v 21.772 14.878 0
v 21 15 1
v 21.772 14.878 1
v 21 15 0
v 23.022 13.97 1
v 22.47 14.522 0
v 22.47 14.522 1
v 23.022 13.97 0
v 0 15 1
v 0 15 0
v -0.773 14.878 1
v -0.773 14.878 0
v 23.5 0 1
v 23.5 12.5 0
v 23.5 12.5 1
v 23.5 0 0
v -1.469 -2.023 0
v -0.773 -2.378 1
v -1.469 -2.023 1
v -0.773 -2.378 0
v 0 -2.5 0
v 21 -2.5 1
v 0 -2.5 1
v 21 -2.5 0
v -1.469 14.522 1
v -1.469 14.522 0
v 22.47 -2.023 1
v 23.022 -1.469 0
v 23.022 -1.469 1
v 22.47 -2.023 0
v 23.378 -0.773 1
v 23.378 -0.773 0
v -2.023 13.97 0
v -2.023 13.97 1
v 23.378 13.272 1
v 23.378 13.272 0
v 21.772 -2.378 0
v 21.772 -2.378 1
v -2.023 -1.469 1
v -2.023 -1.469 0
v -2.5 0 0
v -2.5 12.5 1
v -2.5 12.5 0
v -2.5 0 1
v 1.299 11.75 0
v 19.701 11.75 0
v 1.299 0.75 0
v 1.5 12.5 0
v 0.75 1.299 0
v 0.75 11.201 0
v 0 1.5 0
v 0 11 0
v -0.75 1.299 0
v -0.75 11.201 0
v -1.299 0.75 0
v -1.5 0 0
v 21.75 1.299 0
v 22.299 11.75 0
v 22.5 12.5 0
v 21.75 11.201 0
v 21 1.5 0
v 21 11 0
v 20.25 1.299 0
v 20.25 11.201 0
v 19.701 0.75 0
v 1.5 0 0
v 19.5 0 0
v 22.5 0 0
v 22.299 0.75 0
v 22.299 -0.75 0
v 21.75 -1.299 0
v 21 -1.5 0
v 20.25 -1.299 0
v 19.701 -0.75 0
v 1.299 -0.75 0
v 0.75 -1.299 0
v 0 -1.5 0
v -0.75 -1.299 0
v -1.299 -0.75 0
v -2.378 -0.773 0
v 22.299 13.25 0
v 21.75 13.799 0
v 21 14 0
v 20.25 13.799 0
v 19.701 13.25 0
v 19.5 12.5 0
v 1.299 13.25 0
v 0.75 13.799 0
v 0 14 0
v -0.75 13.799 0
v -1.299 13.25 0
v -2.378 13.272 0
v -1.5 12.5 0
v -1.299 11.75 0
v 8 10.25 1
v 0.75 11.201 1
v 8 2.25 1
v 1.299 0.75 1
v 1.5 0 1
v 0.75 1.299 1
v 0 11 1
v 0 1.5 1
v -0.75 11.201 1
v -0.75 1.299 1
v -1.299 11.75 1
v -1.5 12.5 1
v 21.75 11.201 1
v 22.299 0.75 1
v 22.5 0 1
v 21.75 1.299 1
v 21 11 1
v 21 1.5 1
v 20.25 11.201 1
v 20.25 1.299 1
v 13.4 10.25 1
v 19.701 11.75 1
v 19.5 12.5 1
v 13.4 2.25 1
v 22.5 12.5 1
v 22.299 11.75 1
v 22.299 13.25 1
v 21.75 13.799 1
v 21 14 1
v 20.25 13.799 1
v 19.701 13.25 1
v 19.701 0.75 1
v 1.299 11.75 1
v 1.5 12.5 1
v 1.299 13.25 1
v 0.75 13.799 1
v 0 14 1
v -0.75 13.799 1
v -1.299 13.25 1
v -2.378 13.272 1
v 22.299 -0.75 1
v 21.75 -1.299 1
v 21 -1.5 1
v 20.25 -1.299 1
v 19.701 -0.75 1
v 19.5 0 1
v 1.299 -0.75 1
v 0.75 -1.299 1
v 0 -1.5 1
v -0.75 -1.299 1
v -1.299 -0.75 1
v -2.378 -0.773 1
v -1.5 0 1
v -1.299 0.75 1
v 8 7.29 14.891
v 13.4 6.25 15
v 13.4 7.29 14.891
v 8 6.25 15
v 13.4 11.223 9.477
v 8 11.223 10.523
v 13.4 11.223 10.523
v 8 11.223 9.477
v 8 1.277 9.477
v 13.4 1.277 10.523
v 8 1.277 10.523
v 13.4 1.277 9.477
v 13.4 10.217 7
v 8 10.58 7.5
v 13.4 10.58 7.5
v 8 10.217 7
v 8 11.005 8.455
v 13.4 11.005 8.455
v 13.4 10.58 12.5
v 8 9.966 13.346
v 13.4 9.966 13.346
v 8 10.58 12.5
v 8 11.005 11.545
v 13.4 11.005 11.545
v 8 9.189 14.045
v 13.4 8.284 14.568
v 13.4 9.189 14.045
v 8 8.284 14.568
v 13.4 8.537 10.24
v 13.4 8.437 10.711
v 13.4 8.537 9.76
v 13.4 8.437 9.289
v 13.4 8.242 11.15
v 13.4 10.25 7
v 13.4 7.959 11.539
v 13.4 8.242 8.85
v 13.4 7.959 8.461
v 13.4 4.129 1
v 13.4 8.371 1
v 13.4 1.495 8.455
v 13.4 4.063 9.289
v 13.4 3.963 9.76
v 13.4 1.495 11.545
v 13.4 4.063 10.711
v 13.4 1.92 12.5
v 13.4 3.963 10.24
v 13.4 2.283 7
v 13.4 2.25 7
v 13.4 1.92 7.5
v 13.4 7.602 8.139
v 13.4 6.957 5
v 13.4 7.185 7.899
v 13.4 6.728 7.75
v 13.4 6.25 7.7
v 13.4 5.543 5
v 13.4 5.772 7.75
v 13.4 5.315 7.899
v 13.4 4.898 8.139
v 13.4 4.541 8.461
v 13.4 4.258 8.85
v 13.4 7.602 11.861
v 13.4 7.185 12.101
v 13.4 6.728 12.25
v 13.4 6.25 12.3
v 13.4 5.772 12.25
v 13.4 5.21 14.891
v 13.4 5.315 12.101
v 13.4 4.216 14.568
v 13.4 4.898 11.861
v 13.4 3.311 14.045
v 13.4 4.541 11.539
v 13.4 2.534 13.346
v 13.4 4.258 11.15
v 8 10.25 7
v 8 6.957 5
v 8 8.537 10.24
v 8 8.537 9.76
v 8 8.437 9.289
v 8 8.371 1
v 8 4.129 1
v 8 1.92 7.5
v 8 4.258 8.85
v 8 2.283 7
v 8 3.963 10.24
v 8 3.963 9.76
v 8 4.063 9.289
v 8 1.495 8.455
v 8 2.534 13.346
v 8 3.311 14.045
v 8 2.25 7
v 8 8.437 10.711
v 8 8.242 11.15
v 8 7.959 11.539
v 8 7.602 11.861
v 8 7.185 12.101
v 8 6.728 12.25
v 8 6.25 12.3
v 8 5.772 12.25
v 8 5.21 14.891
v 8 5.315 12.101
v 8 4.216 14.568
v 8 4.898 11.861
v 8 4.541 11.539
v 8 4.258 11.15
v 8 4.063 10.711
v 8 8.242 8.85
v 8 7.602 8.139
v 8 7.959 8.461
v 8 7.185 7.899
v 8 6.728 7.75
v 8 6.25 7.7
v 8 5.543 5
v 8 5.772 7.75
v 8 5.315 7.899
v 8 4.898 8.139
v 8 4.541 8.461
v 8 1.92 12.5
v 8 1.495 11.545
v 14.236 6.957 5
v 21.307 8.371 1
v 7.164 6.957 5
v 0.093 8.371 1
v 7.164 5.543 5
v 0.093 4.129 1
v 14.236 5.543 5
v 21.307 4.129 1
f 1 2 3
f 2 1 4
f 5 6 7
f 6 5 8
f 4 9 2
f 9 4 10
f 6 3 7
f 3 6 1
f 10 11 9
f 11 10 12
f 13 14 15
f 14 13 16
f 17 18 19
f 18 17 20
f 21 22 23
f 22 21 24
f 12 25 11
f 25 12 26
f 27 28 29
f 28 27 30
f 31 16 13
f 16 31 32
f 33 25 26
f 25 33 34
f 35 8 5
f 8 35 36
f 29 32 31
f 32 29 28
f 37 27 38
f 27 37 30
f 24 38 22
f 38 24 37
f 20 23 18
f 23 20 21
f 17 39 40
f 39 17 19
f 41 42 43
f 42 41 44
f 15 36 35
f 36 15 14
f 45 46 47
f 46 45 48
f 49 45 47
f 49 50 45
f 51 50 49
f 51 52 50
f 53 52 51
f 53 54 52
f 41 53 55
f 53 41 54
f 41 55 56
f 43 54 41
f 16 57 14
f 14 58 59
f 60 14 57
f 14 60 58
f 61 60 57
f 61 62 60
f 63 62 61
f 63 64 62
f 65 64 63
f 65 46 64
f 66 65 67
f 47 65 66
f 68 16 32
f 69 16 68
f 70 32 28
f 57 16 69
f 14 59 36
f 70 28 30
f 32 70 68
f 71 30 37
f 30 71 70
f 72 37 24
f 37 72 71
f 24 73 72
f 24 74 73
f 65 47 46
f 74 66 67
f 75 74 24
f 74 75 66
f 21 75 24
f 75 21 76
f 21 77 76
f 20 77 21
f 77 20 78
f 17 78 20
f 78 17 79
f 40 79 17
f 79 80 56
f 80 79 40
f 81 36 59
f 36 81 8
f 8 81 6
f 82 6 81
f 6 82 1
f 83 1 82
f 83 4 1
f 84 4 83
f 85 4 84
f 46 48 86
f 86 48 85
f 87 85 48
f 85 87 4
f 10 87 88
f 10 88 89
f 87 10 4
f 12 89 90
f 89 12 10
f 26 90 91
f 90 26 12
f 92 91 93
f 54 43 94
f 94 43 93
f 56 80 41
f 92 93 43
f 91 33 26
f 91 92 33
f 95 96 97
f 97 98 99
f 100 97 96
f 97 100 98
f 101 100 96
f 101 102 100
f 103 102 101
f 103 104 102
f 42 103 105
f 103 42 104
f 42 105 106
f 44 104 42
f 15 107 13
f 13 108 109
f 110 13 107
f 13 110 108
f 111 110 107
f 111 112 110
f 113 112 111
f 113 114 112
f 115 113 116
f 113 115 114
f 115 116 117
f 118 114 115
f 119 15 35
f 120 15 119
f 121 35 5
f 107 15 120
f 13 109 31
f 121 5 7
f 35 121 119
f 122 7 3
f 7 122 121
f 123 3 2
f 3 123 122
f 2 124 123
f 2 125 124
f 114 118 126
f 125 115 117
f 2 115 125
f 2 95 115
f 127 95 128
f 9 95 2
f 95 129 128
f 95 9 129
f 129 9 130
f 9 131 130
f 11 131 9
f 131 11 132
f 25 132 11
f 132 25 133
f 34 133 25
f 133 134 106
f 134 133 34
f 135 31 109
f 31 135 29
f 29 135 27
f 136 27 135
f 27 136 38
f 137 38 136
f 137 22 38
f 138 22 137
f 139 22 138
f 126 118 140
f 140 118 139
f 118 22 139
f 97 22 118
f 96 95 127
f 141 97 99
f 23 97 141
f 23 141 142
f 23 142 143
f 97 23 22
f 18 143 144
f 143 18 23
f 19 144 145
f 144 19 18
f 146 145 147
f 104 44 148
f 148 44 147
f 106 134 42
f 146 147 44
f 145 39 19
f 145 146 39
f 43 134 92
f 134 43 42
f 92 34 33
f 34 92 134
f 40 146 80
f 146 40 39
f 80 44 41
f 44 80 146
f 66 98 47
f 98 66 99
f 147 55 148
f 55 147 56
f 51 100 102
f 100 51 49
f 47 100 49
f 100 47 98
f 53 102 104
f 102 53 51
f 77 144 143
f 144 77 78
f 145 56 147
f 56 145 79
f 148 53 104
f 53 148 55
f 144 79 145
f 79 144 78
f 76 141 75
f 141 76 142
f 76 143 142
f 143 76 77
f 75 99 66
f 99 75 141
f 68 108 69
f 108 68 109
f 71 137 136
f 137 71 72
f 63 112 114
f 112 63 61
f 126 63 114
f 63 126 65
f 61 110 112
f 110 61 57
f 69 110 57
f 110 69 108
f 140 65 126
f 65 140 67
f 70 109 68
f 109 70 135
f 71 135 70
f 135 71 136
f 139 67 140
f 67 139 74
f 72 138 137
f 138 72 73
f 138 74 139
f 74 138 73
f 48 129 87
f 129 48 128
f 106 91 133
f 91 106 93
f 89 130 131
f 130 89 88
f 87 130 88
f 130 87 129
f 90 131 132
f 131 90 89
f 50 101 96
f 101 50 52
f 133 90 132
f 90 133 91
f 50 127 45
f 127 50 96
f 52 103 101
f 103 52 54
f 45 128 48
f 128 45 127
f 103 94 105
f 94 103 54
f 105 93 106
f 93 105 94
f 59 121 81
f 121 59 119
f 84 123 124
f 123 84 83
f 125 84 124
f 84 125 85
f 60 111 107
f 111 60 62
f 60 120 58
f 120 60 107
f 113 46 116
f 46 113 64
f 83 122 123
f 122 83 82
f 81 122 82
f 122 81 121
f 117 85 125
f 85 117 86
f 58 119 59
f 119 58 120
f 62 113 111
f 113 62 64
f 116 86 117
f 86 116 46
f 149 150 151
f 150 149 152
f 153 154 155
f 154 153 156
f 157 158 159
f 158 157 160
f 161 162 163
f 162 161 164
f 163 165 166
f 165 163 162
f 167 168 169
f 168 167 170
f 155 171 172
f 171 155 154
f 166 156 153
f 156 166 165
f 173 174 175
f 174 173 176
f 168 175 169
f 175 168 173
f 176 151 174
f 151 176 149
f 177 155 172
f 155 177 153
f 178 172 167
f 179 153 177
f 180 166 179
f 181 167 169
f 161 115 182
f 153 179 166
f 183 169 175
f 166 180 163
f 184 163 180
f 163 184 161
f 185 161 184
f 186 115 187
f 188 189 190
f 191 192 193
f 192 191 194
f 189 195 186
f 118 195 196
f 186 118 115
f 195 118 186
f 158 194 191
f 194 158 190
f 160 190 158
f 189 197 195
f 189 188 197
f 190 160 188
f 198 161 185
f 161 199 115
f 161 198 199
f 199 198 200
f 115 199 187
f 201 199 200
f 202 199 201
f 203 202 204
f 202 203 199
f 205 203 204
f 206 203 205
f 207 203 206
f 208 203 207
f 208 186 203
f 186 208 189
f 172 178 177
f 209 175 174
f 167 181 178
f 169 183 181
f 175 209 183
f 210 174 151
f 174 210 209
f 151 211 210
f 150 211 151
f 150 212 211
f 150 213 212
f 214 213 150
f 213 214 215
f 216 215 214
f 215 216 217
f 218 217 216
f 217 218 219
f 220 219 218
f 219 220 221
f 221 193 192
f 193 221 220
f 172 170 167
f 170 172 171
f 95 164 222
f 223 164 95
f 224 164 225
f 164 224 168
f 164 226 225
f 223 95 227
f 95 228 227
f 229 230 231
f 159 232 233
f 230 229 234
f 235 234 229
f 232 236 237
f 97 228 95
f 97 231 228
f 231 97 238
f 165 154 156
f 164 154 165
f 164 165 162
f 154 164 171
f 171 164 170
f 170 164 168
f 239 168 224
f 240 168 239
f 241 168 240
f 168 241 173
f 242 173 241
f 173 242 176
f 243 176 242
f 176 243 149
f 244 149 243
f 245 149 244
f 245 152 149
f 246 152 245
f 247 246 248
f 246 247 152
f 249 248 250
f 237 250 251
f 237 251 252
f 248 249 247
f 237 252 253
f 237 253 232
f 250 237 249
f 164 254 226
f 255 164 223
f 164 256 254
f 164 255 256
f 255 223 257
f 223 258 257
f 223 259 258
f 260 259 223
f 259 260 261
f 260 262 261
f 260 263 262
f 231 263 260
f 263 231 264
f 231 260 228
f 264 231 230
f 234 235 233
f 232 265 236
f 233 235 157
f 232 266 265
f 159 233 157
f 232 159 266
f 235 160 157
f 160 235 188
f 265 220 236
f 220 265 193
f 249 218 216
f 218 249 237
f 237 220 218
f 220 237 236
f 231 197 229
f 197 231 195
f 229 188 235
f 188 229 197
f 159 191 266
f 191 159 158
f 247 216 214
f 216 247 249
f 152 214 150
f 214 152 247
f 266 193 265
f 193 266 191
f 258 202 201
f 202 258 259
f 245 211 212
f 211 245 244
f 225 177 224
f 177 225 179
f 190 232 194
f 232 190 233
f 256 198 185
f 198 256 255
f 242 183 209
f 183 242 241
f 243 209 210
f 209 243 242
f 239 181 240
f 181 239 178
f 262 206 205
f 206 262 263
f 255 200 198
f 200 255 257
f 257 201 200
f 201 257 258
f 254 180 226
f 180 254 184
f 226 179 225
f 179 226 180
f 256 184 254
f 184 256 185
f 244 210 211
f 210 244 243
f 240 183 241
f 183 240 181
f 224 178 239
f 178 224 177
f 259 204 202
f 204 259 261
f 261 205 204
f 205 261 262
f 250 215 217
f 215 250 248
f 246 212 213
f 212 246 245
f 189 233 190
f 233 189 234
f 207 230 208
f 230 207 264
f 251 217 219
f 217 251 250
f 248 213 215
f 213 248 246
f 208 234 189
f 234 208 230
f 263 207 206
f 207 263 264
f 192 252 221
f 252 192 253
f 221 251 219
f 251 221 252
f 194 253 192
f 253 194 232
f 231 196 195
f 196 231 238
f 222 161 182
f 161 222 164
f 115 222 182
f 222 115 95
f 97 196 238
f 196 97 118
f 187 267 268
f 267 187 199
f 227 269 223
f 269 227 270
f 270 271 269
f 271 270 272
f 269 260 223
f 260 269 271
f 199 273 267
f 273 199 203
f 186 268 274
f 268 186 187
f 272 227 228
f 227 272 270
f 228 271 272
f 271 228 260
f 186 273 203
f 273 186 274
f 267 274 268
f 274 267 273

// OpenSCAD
//Cam V1_3
//plate
difference(){
	translate([0,0,0])
		minkowski()	{
  			cube([21,12.5,0.65]);
  			cylinder(r=2.5,h=0.35, $fn=20);
		}//minkowski

	//holes
	translate([0,0,0])
		cylinder(5,1.5,1.5, $fn=12);
	translate([21,0,0])
		cylinder(5,1.5,1.5, $fn=12);
	translate([0,12.5,0])
		cylinder(5,1.5,1.5, $fn=12);
	translate([21,12.5,0])
		cylinder(5,1.5,1.5, $fn=12);

}


//support
translate([8,6.25,10]){
	rotate([0,90,0])
		difference() {
			cylinder(5.4,5,5, $fn=30);
			cylinder(7,2.3,2.3, $fn=30);
		}//difference

	translate([0,-4,-10])
		cube([5.4,8,7]);

	translate([2.7,0,-9])
		scale([(5),1,1])
			rotate([0,0,45])	
				cylinder(4,3,1,$fn=4);
}
